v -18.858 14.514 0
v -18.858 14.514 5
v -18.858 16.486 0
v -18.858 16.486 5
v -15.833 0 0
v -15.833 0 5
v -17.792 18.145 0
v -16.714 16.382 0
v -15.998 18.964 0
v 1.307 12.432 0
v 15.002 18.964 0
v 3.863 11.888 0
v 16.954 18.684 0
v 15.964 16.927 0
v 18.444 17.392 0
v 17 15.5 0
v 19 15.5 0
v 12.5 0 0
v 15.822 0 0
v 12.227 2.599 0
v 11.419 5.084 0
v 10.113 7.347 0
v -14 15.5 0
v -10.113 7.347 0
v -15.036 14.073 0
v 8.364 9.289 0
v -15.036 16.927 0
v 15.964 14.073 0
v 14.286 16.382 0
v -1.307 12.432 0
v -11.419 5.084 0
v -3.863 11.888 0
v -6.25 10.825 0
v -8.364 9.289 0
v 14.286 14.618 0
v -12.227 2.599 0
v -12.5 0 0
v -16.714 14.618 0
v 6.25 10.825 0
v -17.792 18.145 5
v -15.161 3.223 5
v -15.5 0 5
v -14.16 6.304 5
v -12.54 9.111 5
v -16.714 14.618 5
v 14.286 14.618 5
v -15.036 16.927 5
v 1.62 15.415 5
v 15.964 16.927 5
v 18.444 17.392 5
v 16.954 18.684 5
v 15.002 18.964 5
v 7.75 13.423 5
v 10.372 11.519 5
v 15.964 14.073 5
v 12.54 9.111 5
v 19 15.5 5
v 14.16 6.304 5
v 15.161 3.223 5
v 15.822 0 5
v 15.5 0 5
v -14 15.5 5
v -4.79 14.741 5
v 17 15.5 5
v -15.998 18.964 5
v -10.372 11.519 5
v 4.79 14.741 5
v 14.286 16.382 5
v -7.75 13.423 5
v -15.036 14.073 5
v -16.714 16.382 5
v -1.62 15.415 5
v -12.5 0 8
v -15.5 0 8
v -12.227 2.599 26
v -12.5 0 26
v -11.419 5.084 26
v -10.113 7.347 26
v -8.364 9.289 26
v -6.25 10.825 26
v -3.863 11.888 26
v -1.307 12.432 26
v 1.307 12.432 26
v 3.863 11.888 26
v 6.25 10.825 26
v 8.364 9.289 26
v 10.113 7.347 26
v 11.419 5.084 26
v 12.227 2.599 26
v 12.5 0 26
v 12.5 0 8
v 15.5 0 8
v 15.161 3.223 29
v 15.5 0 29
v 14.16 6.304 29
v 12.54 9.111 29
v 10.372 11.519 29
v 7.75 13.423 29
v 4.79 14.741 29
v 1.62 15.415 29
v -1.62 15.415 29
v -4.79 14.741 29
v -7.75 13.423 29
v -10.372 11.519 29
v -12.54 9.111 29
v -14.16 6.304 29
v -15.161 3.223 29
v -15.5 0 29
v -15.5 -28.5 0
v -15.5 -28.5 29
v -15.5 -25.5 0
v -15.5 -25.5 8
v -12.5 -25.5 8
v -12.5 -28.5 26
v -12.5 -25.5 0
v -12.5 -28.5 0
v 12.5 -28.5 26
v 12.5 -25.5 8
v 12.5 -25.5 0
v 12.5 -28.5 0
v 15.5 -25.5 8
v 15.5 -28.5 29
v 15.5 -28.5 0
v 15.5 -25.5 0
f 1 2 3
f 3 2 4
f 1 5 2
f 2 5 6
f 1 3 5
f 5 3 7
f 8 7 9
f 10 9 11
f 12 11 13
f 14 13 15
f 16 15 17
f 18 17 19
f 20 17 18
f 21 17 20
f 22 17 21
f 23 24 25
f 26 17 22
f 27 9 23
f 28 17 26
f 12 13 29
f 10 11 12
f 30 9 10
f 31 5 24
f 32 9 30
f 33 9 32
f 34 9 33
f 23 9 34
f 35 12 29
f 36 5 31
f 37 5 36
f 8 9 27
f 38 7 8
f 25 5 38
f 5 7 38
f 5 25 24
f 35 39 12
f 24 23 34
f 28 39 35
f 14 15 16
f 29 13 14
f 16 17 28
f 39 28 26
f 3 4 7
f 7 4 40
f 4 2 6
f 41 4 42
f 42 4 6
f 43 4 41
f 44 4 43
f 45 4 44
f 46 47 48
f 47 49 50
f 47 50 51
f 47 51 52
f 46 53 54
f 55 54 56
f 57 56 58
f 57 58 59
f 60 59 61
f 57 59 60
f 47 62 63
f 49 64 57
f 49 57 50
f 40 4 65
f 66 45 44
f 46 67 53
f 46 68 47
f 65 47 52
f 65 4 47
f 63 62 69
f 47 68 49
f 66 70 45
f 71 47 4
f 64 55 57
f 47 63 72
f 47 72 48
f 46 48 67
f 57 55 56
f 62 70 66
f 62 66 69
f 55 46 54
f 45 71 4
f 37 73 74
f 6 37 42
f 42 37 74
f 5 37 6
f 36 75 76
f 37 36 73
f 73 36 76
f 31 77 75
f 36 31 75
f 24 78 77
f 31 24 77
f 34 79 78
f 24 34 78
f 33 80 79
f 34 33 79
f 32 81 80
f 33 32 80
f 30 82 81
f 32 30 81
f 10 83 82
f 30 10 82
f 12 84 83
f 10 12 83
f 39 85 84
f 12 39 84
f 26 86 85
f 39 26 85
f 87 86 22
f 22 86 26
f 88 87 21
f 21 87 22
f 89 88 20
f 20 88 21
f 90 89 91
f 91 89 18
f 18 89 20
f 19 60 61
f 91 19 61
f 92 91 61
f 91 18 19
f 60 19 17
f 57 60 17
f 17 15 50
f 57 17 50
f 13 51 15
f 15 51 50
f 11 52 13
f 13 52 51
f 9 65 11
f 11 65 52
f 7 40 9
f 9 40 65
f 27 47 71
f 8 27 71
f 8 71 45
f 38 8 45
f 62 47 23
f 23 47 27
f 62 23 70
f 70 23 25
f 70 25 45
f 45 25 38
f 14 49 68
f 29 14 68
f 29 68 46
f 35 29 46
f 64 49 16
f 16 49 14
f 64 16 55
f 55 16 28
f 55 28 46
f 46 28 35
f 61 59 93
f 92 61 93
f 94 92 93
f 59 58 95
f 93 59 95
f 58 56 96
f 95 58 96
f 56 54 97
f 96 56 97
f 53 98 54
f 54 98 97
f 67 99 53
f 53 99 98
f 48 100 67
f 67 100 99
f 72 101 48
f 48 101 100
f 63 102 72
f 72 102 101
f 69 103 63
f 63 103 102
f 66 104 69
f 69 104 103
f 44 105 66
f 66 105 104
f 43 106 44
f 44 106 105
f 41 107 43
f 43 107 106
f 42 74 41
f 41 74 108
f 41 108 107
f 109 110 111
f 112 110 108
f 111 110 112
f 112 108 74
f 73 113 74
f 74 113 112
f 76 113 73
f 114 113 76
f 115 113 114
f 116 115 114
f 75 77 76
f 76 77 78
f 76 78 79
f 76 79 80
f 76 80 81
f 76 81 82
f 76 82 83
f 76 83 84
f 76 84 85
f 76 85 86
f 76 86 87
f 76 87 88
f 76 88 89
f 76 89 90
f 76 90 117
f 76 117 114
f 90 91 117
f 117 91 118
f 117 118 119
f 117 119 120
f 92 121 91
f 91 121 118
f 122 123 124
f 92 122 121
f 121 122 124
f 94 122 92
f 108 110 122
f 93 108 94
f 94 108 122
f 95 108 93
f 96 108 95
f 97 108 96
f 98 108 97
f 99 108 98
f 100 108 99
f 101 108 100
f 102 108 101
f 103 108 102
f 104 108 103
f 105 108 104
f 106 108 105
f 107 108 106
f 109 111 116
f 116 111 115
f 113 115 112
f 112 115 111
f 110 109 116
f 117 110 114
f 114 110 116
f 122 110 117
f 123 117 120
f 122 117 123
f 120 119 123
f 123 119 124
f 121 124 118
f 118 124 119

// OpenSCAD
d=13+31/2;  //dist to cover on belt
h=29; // height off motor face
cut=8; //height of motor mount cutout

difference(){
	union(){
		//base mount
		hull(){
			cylinder(r=25/2+3, h=5);
			translate([31/2,31/2,0])
			cylinder(r=7/2, h=5);	
			translate([-31/2,31/2,0])
			cylinder(r=7/2, h=5);	
		}

		//main shell exterior
		hull(){
			cylinder(r=25/2+3, h=h);
			translate([-(25/2+3),-d,0])
			cube([25+3*2,1,h]);
		}
	}

	//main shell cutout	
	translate([0,0,-3])
	hull(){
		cylinder(r=25/2, h=h);
		translate([-25/2,-d*2,0])
		cube([25,1,h]);
	}

	//motor mount notch
	translate([0,-(d-3)/2,0])
#	cube([100,d-3,cut*2], center=true);

	//screw holes
	translate([31/2,31/2,0])
	cylinder(r=3/2, h=100, center=true);	
	translate([-31/2,31/2,0])
	cylinder(r=3/2, h=100, center=true);	
}
